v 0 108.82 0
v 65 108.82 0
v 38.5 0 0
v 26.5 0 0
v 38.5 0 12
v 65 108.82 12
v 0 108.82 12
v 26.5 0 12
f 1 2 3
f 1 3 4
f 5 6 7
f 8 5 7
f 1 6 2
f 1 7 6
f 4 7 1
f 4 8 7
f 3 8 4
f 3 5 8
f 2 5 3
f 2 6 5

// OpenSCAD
top_width = 65;
bottom_width = 12;
side_length = 112;
thickness = 12;

offset = (top_width - bottom_width) / 2;
vertical_height = sqrt(side_length * side_length - offset * offset);

linear_extrude(thickness)
polygon(points=[
  [offset, 0],
  [offset + bottom_width, 0],
  [top_width, vertical_height],
  [0, vertical_height]
]);
